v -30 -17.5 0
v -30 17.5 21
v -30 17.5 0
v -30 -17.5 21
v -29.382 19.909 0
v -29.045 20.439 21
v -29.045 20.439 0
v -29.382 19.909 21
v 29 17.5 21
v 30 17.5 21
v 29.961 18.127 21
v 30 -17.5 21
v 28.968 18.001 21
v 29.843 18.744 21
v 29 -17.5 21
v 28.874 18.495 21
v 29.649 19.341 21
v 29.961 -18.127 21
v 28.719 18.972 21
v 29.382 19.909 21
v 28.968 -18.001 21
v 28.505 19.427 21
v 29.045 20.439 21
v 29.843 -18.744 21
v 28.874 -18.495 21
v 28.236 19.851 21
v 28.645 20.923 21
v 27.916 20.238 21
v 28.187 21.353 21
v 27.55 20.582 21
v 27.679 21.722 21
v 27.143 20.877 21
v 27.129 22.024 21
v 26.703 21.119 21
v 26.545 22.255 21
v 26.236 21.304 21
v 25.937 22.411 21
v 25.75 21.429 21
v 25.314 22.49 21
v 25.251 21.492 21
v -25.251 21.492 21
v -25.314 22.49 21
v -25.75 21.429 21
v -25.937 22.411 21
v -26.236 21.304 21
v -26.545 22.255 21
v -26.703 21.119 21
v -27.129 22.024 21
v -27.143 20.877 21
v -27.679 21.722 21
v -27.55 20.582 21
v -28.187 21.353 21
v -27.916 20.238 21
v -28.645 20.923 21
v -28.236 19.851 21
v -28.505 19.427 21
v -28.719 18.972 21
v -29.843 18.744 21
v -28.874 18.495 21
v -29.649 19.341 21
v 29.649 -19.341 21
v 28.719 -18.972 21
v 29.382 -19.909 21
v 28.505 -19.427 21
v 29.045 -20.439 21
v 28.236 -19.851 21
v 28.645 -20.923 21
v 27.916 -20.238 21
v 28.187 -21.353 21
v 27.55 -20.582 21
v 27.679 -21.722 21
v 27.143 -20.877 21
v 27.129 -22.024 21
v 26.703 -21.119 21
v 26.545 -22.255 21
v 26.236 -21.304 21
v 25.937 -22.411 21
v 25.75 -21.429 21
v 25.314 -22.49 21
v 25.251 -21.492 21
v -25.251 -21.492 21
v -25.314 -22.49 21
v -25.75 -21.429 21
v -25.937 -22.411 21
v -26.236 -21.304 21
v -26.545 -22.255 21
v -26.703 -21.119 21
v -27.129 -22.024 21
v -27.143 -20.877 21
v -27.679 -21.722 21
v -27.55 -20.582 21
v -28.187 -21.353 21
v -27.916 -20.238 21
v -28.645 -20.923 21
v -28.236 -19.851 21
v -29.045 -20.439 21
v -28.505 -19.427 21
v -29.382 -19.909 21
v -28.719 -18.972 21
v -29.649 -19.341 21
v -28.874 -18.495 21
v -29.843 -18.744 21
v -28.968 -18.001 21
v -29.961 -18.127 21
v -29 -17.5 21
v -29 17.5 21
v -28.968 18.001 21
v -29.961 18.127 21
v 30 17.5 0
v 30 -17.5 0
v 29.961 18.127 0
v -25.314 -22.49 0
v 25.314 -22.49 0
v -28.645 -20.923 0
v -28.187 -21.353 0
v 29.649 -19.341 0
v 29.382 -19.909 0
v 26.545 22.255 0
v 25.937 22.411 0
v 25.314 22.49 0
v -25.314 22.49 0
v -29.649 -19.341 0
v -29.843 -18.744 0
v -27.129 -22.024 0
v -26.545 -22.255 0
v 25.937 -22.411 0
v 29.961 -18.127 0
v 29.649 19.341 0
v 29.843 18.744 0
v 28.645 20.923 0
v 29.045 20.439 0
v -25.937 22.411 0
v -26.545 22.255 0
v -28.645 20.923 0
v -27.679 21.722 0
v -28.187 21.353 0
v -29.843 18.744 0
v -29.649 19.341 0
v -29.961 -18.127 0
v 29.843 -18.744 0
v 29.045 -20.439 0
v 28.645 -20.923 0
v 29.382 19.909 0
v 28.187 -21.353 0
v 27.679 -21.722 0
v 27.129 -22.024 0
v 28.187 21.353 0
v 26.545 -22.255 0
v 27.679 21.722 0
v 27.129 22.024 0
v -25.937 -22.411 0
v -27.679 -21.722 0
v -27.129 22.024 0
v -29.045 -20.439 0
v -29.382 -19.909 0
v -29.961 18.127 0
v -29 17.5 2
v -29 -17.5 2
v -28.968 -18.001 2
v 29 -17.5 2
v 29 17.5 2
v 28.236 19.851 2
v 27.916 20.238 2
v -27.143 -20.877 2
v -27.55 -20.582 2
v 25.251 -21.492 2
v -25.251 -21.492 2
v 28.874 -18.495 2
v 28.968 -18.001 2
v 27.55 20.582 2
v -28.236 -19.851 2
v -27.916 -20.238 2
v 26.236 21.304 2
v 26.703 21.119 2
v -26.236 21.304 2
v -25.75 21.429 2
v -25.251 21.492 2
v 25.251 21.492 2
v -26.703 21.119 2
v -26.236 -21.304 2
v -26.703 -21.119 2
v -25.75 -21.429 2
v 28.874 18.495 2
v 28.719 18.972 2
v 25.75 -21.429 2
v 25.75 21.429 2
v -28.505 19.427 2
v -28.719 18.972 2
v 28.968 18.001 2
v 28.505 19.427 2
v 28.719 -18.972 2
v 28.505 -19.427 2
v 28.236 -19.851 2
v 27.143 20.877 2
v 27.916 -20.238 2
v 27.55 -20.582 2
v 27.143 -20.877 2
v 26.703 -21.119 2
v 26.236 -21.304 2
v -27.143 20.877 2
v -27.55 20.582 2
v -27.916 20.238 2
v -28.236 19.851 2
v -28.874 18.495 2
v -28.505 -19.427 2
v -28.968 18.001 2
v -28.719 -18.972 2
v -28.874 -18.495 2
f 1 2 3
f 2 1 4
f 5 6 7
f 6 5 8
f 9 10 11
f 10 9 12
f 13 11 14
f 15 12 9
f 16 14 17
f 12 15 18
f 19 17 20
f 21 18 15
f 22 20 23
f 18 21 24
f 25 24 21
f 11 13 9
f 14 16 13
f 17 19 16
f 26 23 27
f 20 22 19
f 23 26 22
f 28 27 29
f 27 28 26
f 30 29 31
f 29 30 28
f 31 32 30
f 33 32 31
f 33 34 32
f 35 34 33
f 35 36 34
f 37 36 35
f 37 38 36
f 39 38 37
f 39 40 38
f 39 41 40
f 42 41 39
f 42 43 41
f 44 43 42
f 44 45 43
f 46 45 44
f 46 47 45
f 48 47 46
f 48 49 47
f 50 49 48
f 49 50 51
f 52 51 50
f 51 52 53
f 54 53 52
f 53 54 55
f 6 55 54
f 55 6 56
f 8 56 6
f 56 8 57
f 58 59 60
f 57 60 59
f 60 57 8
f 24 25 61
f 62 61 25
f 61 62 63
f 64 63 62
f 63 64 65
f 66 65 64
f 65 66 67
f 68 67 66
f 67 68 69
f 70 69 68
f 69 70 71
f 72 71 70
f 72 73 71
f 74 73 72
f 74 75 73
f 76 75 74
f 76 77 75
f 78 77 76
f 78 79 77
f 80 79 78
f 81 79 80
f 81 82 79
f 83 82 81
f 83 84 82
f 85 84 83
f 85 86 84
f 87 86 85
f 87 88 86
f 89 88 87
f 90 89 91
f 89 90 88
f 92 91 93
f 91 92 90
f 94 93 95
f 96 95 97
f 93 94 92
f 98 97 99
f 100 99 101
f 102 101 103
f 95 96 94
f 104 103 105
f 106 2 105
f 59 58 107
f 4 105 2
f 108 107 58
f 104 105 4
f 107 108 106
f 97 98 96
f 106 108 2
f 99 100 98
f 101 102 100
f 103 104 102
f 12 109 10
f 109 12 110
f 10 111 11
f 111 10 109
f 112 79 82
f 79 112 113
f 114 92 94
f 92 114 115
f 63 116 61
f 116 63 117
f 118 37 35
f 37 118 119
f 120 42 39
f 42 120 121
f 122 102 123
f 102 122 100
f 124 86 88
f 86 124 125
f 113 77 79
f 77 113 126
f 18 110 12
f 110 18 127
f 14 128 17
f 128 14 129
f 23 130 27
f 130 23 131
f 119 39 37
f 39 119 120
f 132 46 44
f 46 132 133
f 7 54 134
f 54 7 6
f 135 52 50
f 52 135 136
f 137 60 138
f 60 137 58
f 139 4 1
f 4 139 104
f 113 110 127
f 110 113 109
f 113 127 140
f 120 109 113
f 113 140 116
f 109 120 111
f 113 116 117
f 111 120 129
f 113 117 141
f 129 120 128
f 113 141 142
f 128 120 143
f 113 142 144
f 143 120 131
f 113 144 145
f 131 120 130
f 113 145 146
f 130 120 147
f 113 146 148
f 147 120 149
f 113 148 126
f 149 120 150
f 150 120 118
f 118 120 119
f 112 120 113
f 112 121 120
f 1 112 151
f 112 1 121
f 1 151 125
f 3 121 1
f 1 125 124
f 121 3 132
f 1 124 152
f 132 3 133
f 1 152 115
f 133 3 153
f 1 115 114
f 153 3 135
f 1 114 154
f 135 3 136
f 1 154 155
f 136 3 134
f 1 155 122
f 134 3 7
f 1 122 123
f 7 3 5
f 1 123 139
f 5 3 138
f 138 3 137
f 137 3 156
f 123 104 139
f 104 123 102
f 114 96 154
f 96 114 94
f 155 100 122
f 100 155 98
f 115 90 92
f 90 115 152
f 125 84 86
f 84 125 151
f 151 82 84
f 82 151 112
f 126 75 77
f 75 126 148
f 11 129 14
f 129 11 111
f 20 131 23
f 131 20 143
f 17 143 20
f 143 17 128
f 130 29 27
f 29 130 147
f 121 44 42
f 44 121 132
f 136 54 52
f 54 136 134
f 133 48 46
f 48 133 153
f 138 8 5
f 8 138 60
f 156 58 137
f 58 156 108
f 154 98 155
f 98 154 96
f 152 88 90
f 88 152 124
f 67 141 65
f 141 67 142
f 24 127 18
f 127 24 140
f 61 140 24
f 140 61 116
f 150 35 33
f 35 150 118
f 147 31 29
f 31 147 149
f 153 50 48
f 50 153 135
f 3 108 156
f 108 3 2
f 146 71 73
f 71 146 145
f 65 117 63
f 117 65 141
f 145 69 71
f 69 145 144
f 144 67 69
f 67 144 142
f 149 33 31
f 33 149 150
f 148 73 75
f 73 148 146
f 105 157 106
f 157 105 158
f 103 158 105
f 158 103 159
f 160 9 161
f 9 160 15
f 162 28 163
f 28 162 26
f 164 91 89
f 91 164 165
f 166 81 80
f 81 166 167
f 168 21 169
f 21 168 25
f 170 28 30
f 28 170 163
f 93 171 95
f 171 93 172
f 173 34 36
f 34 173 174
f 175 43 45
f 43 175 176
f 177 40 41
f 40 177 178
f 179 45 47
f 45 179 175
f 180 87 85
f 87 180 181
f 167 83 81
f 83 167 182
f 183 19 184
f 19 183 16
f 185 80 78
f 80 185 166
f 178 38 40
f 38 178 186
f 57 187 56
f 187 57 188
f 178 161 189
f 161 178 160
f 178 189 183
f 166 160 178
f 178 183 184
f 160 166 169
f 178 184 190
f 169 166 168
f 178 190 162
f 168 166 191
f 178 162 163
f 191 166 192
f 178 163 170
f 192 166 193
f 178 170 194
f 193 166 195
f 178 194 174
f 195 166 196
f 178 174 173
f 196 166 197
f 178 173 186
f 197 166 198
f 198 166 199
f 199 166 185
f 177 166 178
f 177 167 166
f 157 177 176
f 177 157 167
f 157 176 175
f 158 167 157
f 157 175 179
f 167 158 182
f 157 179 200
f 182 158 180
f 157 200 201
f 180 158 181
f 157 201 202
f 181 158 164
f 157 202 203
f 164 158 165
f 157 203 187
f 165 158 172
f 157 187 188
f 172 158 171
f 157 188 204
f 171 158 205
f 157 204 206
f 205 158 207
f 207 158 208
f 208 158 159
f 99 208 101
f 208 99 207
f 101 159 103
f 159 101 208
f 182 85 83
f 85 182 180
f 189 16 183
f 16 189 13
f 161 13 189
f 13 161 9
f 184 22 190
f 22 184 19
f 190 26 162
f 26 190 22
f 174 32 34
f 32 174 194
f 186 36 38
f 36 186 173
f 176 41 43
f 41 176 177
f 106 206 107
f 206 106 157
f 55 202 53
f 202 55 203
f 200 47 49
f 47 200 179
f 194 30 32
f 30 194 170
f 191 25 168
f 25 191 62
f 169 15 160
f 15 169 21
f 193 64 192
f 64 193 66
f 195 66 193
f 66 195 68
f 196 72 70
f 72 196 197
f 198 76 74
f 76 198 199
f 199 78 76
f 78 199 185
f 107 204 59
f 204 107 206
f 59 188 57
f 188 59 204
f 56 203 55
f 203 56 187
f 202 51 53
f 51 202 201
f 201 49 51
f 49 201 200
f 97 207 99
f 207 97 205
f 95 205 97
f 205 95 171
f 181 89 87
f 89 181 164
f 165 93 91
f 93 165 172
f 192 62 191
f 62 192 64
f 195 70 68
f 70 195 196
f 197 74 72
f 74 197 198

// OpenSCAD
$fn = 50;


difference() {
	union() {
		hull() {
			translate(v = [-25.0000000000, 17.5000000000, 0]) {
				cylinder(h = 21, r = 5);
			}
			translate(v = [25.0000000000, 17.5000000000, 0]) {
				cylinder(h = 21, r = 5);
			}
			translate(v = [-25.0000000000, -17.5000000000, 0]) {
				cylinder(h = 21, r = 5);
			}
			translate(v = [25.0000000000, -17.5000000000, 0]) {
				cylinder(h = 21, r = 5);
			}
		}
	}
	union() {
		translate(v = [0, 0, 2]) {
			hull() {
				translate(v = [-25.0000000000, 17.5000000000, 0]) {
					cylinder(h = 19, r = 4);
				}
				translate(v = [25.0000000000, 17.5000000000, 0]) {
					cylinder(h = 19, r = 4);
				}
				translate(v = [-25.0000000000, -17.5000000000, 0]) {
					cylinder(h = 19, r = 4);
				}
				translate(v = [25.0000000000, -17.5000000000, 0]) {
					cylinder(h = 19, r = 4);
				}
			}
		}
	}
}
